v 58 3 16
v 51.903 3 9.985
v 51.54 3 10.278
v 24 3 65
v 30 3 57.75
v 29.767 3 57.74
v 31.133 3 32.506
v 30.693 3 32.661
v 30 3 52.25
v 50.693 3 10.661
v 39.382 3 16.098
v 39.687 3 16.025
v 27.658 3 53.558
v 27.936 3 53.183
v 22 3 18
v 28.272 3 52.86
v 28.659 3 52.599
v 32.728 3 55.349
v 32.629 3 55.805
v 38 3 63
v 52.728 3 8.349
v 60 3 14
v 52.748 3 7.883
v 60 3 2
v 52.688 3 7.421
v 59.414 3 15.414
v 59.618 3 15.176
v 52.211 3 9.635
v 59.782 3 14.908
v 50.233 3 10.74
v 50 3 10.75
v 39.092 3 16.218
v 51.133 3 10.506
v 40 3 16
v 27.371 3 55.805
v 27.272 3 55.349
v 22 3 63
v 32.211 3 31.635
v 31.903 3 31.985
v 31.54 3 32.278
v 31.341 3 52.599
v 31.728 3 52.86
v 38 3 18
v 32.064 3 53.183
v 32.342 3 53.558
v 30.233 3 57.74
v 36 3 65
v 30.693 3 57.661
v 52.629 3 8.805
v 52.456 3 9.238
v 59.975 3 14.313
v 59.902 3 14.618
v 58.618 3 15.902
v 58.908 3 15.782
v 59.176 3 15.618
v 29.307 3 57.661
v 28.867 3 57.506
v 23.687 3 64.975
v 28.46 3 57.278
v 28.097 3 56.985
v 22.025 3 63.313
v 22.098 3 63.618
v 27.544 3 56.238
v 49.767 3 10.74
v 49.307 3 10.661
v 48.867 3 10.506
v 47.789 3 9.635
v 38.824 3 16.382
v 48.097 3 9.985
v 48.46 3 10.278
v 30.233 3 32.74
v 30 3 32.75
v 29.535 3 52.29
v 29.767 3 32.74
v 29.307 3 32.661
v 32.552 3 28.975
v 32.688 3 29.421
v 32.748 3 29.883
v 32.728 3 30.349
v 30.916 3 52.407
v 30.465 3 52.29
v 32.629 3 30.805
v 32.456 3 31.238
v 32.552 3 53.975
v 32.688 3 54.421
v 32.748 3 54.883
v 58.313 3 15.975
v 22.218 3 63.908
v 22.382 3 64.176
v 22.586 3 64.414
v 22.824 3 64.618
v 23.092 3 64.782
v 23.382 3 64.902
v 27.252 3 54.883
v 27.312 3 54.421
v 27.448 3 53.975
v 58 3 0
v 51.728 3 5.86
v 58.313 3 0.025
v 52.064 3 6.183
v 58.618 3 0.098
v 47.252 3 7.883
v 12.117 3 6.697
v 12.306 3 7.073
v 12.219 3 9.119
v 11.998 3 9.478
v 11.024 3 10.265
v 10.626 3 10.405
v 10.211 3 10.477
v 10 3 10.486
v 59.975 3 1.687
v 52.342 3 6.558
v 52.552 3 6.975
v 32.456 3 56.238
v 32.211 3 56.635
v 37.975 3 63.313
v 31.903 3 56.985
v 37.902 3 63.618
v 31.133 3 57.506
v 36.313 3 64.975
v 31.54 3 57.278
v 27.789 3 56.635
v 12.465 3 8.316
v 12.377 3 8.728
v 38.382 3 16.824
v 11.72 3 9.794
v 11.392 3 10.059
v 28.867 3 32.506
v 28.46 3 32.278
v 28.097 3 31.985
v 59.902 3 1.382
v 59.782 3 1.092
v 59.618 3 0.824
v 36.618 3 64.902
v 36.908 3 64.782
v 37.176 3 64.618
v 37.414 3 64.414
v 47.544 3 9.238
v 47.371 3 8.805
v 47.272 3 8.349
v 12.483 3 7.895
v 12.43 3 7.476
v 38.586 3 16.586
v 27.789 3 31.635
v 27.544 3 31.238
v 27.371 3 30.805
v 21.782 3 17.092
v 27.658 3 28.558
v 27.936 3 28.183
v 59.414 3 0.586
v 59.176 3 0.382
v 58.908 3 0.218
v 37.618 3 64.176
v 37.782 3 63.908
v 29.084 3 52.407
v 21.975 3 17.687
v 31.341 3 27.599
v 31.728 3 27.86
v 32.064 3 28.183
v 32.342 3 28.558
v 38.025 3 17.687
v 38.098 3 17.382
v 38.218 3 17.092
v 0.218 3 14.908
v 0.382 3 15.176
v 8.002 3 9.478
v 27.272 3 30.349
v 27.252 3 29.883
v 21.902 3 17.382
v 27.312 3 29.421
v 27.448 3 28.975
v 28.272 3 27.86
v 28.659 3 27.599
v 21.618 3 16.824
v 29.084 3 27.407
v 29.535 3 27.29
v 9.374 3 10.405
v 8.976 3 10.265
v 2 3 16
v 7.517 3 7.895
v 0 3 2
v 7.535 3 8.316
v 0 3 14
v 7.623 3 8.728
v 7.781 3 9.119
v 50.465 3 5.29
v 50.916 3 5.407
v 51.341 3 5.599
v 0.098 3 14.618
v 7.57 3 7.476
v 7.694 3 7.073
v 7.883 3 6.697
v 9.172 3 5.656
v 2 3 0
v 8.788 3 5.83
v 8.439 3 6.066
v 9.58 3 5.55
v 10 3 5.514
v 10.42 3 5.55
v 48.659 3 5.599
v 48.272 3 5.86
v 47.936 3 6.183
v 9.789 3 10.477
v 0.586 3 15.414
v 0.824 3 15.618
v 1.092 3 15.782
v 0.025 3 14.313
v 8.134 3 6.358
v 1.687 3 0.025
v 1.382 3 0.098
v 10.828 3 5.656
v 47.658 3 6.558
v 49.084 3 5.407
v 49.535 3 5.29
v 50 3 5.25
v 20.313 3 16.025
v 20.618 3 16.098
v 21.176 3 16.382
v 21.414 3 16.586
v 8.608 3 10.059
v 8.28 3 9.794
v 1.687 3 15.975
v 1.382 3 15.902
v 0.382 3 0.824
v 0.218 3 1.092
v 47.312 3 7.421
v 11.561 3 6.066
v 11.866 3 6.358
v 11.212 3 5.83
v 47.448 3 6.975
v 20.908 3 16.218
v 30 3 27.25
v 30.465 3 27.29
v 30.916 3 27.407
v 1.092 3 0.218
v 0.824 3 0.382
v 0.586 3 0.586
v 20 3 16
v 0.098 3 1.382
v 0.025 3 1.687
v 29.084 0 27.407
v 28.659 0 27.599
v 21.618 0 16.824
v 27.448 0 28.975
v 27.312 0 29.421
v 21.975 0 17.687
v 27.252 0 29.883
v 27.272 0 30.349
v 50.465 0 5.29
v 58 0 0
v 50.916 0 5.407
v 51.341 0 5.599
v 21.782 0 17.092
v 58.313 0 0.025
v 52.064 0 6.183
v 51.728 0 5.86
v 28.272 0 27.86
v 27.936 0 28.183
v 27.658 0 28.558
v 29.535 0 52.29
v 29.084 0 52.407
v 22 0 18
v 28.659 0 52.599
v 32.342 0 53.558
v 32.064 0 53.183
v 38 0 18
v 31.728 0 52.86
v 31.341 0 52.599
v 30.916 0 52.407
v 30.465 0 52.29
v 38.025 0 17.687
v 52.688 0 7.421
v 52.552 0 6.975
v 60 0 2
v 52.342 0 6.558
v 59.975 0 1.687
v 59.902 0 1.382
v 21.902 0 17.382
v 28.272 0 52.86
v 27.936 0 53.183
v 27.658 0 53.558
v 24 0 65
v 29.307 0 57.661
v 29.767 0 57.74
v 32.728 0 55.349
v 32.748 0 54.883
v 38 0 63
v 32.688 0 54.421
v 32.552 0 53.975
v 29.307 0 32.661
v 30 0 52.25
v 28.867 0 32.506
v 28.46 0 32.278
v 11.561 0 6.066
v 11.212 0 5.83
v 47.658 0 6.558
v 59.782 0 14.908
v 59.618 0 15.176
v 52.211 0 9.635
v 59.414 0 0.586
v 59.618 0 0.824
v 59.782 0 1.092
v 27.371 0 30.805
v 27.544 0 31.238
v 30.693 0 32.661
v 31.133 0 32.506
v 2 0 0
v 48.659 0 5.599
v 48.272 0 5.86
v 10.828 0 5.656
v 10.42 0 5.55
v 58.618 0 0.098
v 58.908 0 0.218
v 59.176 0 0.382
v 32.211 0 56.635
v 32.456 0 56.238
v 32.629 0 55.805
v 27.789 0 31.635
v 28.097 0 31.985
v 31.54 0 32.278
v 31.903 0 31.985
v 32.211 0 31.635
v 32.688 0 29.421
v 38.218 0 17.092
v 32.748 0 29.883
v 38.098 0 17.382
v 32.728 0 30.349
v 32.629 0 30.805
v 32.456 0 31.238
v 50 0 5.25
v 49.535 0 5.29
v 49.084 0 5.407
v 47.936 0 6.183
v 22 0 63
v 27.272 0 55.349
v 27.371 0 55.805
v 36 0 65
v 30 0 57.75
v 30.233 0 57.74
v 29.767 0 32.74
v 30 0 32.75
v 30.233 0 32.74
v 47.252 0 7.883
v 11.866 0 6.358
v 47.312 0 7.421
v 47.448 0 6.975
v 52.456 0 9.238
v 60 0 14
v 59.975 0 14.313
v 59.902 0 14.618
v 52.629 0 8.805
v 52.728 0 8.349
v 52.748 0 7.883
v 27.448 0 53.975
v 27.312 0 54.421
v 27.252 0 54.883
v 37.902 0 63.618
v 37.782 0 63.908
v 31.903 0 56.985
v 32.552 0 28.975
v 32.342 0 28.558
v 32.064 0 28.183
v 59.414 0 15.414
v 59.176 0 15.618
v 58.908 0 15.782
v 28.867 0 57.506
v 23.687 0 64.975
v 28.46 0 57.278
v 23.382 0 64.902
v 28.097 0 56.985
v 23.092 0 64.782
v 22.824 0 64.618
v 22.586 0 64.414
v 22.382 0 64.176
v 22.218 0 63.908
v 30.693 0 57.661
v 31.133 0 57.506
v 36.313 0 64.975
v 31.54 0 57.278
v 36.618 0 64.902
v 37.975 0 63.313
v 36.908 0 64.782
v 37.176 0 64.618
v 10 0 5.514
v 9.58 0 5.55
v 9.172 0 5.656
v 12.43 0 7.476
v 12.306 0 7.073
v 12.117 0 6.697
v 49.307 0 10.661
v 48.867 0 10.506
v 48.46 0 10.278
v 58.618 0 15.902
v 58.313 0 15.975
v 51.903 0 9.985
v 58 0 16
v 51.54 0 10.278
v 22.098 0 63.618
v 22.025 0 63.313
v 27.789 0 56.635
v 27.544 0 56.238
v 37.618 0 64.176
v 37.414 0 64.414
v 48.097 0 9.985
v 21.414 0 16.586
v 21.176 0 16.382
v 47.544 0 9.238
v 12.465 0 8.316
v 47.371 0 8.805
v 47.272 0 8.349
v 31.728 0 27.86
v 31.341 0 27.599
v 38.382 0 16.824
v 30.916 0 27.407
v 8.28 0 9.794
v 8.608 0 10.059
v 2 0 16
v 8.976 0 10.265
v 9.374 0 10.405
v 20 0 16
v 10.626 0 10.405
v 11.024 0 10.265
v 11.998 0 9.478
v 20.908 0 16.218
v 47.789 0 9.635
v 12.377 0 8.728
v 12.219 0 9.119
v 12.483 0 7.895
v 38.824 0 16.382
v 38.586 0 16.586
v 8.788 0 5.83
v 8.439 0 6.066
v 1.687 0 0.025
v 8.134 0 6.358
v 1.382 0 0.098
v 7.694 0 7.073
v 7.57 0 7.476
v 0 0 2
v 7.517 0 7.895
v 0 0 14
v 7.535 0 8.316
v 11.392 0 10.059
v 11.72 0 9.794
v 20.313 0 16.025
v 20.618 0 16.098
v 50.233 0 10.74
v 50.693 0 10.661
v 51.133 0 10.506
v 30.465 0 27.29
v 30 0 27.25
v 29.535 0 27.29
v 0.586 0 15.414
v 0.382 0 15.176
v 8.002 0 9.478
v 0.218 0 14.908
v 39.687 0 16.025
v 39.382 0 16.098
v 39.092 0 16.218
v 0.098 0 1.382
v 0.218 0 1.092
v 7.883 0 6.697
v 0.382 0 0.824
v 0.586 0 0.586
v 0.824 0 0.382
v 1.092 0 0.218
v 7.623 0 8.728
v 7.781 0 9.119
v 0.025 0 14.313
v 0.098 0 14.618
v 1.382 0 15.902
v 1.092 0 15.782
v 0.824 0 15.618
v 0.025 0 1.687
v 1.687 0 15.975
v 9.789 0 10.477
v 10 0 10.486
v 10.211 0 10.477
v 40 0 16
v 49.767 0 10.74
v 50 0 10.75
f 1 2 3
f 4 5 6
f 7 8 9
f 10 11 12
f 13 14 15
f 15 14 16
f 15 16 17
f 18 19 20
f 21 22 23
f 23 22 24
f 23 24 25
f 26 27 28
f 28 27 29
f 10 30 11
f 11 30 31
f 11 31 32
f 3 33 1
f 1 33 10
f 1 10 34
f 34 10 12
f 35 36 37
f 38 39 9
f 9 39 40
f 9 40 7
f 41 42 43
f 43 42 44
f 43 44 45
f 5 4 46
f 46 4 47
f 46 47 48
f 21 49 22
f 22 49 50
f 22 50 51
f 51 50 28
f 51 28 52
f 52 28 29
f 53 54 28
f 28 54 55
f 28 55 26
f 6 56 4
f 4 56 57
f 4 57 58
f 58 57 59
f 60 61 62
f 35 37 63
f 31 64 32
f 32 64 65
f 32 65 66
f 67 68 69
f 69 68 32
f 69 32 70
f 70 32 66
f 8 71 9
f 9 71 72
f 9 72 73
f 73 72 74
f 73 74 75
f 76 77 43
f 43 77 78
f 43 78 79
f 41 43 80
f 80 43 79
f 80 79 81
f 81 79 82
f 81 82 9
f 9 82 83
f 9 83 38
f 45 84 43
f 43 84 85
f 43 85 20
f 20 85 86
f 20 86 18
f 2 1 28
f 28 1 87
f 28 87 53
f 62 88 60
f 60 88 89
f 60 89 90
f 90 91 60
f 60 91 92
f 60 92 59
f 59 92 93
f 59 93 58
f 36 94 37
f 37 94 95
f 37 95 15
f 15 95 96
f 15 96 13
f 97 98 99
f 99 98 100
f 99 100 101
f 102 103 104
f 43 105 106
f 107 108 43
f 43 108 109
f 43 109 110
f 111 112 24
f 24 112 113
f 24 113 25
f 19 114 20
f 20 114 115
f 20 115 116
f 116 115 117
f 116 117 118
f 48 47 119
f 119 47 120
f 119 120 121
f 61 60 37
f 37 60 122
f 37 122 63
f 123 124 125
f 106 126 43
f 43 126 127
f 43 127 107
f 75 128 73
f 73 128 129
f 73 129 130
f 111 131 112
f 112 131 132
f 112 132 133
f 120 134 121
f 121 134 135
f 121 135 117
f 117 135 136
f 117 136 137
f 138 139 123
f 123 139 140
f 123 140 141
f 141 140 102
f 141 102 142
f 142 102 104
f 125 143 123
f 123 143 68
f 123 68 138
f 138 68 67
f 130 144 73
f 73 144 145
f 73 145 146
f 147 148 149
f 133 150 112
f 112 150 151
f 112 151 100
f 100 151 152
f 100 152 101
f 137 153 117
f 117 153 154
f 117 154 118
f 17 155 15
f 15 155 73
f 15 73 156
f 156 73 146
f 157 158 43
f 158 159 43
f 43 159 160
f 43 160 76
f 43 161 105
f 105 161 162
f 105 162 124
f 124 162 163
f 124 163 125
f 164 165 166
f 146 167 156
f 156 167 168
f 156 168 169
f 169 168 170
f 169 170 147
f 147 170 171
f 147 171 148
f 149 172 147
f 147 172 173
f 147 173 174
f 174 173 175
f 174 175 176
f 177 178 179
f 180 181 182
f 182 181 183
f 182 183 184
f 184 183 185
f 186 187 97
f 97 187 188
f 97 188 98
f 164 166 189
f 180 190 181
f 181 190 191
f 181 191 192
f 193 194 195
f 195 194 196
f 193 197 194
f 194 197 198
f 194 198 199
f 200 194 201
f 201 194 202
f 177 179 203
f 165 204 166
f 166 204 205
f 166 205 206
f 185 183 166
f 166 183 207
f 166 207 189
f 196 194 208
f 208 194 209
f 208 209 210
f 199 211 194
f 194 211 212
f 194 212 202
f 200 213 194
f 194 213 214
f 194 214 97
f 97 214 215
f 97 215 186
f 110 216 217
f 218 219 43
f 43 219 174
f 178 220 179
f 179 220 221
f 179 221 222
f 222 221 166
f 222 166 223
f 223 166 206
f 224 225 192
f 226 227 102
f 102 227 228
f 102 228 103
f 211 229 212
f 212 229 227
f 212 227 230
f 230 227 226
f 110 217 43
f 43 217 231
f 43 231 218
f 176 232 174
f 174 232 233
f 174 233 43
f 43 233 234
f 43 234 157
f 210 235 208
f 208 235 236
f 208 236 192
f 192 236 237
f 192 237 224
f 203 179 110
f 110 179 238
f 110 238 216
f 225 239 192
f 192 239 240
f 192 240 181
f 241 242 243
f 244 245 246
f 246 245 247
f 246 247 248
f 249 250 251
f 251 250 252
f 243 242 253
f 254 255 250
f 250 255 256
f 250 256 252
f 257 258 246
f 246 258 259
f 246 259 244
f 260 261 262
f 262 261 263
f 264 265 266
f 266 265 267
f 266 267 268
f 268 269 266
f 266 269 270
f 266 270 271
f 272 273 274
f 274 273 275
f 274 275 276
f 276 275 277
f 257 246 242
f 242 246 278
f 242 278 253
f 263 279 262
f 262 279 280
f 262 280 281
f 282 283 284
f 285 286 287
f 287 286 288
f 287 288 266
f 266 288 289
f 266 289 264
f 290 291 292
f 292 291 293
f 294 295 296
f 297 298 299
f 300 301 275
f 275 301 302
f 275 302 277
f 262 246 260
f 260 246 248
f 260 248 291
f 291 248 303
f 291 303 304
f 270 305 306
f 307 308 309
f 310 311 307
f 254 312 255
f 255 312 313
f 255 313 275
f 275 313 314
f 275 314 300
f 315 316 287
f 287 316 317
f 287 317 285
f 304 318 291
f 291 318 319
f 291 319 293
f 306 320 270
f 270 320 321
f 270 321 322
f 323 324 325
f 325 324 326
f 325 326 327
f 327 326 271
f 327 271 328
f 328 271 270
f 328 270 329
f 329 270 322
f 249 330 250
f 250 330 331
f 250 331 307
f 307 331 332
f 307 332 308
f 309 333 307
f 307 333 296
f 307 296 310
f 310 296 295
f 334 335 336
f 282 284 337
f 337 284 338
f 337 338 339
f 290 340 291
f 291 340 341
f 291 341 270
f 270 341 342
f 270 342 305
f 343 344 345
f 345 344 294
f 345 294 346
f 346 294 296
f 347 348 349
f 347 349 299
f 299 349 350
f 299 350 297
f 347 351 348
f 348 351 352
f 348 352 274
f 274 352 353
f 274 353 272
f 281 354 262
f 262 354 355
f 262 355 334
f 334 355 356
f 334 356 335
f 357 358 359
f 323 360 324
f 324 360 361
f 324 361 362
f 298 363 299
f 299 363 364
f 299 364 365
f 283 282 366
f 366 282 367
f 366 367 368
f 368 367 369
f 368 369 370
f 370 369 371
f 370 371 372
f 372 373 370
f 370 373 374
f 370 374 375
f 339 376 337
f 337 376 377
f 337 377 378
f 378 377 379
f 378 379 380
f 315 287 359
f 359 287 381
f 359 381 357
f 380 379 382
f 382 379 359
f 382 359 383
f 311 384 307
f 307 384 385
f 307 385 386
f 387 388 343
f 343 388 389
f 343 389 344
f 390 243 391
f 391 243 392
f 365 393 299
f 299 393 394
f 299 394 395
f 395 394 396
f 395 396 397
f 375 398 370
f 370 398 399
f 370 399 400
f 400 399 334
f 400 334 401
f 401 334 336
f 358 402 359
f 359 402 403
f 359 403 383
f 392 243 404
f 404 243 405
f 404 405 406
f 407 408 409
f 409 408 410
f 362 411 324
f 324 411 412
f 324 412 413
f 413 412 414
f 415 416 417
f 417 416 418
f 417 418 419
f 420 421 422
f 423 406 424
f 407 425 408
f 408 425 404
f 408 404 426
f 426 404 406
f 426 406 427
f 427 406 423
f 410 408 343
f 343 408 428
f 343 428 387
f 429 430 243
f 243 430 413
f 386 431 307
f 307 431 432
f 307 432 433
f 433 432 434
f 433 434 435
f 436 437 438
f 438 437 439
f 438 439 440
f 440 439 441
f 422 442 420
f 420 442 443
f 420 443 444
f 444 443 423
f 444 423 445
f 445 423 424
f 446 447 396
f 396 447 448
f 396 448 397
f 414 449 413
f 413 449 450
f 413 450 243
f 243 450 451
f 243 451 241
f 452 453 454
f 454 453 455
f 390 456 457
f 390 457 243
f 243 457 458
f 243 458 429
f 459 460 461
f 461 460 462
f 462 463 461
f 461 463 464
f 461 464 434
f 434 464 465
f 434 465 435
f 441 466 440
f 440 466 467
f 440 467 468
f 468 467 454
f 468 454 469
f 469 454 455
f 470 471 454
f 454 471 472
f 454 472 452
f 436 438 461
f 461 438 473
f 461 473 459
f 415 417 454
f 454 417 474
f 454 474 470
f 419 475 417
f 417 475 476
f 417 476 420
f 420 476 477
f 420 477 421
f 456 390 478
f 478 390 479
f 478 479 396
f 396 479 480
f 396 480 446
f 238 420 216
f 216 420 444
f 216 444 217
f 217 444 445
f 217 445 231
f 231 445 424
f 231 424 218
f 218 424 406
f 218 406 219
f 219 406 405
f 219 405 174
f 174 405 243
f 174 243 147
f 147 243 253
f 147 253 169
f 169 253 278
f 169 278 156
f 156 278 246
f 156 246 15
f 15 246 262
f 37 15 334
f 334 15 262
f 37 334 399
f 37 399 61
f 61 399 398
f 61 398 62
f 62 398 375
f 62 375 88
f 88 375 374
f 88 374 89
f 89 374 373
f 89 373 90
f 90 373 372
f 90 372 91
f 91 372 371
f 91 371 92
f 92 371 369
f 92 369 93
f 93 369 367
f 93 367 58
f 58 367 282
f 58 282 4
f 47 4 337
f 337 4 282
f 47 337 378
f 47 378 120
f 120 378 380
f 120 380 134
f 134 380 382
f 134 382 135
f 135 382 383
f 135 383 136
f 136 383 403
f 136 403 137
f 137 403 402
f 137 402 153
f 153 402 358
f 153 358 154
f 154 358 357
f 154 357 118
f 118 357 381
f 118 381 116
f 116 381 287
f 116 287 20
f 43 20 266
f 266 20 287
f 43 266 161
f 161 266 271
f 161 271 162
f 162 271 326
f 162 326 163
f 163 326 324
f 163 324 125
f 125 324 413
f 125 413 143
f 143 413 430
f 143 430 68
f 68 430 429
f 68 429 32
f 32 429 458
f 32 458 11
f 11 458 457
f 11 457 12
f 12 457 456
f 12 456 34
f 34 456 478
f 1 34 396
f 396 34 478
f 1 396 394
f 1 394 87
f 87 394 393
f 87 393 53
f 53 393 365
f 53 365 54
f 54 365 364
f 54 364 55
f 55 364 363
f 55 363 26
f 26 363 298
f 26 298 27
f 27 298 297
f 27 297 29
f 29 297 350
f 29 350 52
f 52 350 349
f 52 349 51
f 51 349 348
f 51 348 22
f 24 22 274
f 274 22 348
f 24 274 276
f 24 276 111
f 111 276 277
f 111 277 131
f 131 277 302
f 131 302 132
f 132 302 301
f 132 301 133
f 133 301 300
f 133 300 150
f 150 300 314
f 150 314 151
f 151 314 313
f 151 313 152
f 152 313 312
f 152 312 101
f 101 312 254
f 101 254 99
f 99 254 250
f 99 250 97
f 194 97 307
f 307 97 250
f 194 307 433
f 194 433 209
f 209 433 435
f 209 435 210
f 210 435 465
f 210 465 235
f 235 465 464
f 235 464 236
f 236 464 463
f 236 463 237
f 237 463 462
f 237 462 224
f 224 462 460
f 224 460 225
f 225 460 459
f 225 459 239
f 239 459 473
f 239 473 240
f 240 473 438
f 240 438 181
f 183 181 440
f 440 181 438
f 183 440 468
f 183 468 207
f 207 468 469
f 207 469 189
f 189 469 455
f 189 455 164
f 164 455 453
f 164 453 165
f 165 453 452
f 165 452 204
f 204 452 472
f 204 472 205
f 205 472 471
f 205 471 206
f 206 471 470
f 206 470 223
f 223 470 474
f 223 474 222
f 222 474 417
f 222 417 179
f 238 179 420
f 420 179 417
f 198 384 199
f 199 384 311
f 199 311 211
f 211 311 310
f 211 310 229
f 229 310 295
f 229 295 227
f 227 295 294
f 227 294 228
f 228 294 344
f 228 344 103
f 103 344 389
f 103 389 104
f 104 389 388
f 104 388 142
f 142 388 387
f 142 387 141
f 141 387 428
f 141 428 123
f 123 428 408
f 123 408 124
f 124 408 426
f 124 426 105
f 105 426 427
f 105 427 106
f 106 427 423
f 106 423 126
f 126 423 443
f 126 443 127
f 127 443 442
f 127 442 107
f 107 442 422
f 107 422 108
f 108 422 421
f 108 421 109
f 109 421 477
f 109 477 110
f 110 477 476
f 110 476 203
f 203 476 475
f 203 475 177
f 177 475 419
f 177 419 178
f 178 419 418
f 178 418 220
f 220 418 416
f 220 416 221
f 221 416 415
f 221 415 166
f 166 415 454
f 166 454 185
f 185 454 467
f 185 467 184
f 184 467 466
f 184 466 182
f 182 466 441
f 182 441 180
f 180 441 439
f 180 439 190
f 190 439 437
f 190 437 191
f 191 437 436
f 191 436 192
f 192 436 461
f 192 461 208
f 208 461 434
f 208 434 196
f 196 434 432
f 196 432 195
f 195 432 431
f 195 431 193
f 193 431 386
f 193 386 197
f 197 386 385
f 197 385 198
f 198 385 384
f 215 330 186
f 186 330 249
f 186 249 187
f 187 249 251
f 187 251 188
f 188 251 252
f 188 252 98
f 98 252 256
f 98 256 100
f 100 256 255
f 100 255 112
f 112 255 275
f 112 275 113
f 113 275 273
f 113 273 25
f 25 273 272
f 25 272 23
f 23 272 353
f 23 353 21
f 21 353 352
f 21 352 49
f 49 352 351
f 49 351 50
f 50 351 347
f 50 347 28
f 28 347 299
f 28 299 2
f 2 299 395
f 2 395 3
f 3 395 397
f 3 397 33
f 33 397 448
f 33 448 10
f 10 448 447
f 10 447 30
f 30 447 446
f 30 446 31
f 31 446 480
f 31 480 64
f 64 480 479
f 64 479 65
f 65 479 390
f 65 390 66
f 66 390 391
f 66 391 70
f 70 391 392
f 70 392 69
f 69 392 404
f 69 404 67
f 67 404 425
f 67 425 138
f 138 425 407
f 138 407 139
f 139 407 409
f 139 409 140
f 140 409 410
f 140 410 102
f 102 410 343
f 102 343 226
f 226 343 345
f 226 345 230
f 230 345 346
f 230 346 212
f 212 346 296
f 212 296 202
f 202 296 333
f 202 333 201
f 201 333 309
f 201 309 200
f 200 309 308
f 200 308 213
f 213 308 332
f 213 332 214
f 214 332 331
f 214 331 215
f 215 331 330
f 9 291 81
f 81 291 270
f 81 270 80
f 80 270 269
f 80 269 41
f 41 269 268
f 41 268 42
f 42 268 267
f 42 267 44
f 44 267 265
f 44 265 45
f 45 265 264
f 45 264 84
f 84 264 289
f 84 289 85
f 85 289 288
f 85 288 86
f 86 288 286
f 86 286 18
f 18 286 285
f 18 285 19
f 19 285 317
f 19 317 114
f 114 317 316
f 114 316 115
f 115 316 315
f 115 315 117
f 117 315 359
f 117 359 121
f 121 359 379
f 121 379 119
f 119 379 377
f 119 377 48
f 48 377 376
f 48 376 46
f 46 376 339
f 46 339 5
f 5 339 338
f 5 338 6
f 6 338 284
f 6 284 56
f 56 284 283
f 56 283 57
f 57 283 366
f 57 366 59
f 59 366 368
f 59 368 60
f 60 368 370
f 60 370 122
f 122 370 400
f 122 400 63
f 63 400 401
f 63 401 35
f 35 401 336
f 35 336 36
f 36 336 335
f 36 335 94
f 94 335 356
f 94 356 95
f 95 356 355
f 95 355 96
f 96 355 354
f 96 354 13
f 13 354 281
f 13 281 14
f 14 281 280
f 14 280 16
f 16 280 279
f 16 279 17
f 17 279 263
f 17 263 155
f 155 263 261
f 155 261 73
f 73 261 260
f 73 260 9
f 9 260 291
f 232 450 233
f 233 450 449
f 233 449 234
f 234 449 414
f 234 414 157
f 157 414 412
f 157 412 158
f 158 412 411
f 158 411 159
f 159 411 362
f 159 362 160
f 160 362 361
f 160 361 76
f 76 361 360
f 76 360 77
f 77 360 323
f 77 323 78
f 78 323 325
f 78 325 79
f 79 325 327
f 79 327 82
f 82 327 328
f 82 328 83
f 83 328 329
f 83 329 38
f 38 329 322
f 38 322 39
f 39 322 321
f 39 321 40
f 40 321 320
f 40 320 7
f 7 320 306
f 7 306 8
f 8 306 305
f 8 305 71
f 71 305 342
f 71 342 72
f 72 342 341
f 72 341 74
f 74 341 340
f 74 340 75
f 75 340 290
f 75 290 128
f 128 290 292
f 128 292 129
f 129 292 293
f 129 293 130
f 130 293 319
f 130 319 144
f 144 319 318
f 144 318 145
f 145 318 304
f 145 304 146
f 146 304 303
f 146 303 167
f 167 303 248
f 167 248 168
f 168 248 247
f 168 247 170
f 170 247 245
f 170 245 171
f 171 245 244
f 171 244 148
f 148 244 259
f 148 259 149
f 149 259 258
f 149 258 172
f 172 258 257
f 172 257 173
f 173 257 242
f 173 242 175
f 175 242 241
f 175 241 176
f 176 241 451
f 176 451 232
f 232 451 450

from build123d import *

# Parameters (mm, degrees)
SKETCH_1_R      = 2.485535924
SKETCH_1_R_2    = 2.75
EXTRUDE_1_DEPTH = 3


with BuildPart() as part:
    # 草图1 → 凸台-拉伸1 (new body)
    with BuildSketch(Plane(origin=(0, 0, 0), x_dir=(1, 0, 0), z_dir=(0, 1, 0))):
        with BuildLine():
            Line((0, -2), (0, -14))
            ThreePointArc((0, -14), (0.585786438, -15.414213562), (2, -16))
            Line((2, -16), (20, -16))
            ThreePointArc((20, -16), (21.414213562, -16.585786438), (22, -18))
            Line((22, -18), (22, -63))
            ThreePointArc((22, -63), (22.585786438, -64.414213562), (24, -65))
            Line((24, -65), (36, -65))
            ThreePointArc((36, -65), (37.414213562, -64.414213562), (38, -63))
            Line((38, -63), (38, -18))
            ThreePointArc((38, -18), (38.585786438, -16.585786438), (40, -16))
            Line((40, -16), (58, -16))
            ThreePointArc((58, -16), (59.414213562, -15.414213562), (60, -14))
            Line((60, -14), (60, -2))
            ThreePointArc((60, -2), (59.414213562, -0.585786438), (58, 0))
            Line((58, 0), (2, 0))
            ThreePointArc((2, 0), (0.585786438, -0.585786438), (0, -2))
        make_face()
        with Locations(Location((10, -8, 0), (0, 0, 270))):
            Circle(SKETCH_1_R, mode=Mode.SUBTRACT)
        with Locations(Location((50, -8, 0), (0, 0, 270))):
            Circle(SKETCH_1_R_2, mode=Mode.SUBTRACT)
        with Locations(Location((30, -55, 0), (0, 0, 270))):
            Circle(SKETCH_1_R_2, mode=Mode.SUBTRACT)
        with Locations(Location((30, -30, 0), (0, 0, 270))):
            Circle(SKETCH_1_R_2, mode=Mode.SUBTRACT)
    extrude(amount=EXTRUDE_1_DEPTH)


solid = part.part
